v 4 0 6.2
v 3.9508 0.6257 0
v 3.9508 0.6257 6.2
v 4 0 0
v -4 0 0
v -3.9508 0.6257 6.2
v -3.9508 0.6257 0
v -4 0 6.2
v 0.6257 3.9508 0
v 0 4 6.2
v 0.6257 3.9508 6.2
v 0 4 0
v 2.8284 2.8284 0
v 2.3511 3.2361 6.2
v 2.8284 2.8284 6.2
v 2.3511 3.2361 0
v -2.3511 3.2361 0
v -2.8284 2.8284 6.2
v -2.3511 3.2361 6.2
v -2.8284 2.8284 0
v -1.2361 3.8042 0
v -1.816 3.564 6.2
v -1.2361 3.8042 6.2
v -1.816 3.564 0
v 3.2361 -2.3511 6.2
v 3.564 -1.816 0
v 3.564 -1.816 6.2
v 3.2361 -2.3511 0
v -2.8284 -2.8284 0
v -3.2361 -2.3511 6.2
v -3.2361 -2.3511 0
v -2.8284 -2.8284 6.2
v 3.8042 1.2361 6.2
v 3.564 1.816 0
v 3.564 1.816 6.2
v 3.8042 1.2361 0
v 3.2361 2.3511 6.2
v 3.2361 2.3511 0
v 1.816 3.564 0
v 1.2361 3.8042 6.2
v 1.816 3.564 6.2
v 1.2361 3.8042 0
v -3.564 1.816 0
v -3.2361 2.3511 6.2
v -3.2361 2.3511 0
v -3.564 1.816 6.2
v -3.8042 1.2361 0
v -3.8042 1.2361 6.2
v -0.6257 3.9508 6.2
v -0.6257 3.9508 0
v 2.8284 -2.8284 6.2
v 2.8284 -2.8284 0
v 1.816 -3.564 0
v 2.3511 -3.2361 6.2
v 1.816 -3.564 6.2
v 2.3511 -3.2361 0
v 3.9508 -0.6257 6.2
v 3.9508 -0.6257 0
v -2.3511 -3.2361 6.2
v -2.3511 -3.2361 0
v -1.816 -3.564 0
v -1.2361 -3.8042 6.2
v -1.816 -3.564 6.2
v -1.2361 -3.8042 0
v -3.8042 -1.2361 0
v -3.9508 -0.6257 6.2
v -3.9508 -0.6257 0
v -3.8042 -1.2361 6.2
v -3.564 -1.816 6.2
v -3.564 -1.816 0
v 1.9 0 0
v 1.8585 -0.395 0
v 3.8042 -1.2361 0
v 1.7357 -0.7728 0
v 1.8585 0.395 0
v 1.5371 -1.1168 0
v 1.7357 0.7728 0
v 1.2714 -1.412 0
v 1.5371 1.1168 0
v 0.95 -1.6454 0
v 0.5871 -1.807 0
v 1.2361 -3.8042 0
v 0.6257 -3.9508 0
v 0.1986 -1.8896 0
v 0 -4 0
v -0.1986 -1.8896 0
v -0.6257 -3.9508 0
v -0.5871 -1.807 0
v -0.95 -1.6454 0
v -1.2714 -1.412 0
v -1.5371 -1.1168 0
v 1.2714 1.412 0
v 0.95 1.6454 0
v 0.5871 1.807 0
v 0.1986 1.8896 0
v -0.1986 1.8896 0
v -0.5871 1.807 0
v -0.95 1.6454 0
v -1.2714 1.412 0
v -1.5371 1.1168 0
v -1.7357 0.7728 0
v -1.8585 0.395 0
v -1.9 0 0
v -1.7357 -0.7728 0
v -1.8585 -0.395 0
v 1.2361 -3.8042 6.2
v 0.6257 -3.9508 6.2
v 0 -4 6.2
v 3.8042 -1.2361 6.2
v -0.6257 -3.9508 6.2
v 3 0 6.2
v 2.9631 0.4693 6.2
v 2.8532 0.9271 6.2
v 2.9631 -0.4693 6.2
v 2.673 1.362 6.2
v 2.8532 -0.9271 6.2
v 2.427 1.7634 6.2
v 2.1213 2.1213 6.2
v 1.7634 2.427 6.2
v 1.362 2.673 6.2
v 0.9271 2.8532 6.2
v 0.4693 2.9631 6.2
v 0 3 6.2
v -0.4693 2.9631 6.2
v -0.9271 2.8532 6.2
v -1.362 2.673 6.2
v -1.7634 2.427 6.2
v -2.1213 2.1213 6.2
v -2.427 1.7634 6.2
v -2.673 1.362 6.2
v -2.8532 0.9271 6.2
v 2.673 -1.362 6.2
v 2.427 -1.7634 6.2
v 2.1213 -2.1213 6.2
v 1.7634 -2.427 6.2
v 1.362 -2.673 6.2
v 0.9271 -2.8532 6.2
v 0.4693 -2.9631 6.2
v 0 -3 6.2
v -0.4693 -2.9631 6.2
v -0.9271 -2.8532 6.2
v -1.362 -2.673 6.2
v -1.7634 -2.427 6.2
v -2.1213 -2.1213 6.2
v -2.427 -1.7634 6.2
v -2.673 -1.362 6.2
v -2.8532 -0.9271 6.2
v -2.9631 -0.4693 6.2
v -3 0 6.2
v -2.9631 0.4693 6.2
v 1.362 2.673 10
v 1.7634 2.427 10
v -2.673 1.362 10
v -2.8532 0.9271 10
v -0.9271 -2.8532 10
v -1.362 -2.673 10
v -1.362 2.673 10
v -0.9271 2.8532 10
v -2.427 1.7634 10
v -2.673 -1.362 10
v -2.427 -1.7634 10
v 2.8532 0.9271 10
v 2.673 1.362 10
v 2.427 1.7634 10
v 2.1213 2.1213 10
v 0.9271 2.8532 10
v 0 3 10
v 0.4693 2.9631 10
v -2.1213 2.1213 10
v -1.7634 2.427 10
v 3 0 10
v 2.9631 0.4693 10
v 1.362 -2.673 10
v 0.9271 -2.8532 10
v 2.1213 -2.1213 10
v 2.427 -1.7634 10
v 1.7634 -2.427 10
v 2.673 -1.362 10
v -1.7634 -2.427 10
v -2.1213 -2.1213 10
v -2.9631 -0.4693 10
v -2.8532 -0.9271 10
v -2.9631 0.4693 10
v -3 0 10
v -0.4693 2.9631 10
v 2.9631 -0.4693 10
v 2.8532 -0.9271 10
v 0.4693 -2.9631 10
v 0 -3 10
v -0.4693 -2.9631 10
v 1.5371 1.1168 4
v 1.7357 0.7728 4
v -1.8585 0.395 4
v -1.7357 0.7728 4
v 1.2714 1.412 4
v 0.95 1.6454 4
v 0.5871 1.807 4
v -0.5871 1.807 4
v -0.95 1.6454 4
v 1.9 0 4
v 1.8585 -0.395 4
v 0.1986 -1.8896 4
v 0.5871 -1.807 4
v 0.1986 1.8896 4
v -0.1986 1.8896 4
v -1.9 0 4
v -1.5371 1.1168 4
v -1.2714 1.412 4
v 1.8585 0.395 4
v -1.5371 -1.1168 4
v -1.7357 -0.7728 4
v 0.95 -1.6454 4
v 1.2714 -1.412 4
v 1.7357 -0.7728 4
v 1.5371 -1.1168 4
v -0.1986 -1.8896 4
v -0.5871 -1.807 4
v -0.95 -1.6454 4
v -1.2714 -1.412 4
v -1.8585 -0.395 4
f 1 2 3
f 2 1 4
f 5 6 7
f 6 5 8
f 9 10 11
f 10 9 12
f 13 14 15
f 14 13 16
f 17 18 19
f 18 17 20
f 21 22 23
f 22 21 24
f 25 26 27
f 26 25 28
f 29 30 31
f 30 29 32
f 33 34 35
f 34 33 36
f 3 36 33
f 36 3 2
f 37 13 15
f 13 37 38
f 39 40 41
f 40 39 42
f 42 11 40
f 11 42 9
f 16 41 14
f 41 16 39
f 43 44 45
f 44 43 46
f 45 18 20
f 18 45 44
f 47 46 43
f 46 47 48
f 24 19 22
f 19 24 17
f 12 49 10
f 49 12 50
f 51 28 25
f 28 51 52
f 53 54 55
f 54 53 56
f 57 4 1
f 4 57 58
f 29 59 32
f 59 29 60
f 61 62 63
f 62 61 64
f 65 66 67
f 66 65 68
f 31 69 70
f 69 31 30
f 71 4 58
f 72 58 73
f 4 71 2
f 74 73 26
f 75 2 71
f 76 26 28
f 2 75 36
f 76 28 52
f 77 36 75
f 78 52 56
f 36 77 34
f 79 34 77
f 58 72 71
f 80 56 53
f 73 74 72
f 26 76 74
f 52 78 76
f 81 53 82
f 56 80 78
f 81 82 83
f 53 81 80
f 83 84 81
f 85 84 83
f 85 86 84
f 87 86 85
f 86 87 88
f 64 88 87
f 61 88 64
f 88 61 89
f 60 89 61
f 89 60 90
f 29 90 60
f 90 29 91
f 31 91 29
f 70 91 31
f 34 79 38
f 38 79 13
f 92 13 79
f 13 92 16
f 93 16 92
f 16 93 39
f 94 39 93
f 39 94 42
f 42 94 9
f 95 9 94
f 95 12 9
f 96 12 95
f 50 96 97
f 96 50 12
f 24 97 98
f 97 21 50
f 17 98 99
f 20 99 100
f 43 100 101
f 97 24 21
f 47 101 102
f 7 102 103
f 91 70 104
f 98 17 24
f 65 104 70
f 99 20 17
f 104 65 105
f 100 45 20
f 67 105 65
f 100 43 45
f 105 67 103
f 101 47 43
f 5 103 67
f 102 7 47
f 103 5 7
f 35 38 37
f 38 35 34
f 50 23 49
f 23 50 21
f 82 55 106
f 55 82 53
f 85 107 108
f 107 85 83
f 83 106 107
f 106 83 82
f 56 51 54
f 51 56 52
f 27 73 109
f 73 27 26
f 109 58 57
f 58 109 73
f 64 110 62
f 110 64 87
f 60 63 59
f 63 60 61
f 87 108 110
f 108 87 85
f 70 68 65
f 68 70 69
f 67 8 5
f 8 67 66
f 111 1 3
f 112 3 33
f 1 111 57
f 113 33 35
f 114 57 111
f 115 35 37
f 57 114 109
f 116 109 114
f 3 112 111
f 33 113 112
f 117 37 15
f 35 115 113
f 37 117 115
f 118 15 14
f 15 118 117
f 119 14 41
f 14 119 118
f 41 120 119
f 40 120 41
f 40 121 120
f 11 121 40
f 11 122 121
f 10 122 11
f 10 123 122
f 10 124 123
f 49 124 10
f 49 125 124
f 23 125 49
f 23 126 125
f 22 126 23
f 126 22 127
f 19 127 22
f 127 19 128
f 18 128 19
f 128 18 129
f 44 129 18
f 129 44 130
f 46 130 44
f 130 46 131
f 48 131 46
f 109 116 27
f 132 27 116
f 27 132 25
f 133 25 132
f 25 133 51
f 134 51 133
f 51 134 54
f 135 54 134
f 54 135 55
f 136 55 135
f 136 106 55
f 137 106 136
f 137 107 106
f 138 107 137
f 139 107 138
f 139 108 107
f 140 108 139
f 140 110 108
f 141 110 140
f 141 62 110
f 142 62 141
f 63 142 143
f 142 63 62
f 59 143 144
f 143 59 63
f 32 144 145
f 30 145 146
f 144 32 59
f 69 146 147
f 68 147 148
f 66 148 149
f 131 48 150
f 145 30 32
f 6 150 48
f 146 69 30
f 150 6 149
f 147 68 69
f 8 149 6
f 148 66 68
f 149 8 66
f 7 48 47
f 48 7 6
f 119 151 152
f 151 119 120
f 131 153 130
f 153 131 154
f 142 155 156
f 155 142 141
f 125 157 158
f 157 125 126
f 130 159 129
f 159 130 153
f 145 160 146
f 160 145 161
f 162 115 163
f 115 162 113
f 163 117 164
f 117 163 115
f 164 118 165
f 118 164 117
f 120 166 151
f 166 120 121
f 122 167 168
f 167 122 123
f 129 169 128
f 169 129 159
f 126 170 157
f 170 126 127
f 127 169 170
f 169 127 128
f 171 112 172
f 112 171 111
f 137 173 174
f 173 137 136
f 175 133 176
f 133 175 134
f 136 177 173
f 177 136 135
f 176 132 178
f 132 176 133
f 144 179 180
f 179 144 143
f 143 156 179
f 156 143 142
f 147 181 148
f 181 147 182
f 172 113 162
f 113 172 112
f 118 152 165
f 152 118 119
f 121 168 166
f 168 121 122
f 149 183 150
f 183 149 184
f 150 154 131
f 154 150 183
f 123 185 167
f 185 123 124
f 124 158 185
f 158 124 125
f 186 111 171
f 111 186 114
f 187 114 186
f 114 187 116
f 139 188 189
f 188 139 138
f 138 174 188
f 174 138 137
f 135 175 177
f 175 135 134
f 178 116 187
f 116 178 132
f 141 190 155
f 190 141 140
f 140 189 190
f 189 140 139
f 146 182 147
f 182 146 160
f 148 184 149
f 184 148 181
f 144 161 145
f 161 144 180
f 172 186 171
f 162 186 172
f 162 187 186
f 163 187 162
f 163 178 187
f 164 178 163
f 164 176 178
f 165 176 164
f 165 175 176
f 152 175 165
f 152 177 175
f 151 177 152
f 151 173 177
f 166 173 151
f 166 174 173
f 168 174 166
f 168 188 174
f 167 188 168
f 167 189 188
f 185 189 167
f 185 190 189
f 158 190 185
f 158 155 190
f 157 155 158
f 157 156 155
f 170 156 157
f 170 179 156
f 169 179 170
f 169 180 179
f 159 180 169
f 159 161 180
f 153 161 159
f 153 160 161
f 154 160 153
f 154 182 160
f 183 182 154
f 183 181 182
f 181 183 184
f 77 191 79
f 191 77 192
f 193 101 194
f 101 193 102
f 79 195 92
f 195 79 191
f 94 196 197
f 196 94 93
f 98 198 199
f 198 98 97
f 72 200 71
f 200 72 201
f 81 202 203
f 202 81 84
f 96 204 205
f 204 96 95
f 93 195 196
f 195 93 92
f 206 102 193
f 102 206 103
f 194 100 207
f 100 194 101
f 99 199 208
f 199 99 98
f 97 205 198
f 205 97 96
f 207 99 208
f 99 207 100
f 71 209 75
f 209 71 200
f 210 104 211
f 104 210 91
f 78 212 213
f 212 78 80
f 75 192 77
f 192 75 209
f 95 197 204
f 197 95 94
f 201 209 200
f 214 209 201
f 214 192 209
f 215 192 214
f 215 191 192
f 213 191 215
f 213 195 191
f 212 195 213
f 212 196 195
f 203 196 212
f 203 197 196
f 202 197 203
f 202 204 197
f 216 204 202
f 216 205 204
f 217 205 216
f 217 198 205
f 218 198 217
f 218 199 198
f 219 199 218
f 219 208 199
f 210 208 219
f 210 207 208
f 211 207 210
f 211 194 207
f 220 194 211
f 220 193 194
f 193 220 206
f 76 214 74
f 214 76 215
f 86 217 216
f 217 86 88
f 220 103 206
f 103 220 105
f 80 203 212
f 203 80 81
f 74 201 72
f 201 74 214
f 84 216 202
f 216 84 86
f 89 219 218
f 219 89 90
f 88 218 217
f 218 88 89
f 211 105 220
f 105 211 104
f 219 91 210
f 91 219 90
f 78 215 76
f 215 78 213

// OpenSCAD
// MIDI2Neopixel case button
// by stanoba http://www.thingiverse.com/stanoba/about
// https://www.thingiverse.com/thing:4714197
// https://github.com/stanoba/MIDI2Neopixel

difference(){
	union(){
		translate([0,0,3.1]) cylinder(h=6.2,d=8, center=true, $fn=40);
		translate([0,0,5])    cylinder(h=10,d=6, center=true, $fn=40);
	}
	translate([0,0,2])    cylinder(h=4,d=3.8, center=true, $fn=30);
}
